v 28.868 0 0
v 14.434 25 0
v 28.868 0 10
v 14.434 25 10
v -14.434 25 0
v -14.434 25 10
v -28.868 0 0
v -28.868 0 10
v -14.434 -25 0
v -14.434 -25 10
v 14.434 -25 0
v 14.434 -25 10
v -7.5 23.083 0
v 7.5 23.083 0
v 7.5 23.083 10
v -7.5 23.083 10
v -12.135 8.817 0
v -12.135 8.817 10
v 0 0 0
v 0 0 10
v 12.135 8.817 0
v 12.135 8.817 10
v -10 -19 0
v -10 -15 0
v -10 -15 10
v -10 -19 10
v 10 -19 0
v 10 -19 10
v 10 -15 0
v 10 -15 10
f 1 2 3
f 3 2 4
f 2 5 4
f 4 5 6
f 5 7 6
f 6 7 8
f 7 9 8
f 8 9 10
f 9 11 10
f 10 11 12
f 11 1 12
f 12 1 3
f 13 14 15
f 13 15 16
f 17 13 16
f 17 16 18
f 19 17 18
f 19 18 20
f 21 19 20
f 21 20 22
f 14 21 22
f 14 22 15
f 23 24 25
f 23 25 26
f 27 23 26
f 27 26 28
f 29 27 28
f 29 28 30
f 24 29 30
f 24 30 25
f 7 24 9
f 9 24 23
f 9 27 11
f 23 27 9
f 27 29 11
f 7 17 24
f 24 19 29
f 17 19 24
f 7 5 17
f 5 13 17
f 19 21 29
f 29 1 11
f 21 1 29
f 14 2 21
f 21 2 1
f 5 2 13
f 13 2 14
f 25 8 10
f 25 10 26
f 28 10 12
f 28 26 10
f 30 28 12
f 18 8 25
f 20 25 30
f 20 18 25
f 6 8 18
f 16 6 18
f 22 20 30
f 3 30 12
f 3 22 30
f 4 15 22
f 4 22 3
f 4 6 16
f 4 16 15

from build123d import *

# Parameters (mm, degrees)
SKETCH_W      = 20
SKETCH_H      = 4
EXTRUDE_DEPTH = 10


with BuildPart() as part:
    # Sketch → Extrude (new body)
    with BuildSketch(Plane.XY):
        Polygon((28.867513, 0), (14.433757, 25), (-14.433757, 25), (-28.867513, 0), (-14.433757, -25), (14.433757, -25), align=None)
        Polygon((7.5, 23.082627), (-7.5, 23.082627), (-12.135255, 8.816779), (0, 0), (12.135255, 8.816779), align=None, mode=Mode.SUBTRACT)
        with Locations((0, -17)):
            Rectangle(SKETCH_W, SKETCH_H, mode=Mode.SUBTRACT)
    extrude(amount=EXTRUDE_DEPTH)


solid = part.part
